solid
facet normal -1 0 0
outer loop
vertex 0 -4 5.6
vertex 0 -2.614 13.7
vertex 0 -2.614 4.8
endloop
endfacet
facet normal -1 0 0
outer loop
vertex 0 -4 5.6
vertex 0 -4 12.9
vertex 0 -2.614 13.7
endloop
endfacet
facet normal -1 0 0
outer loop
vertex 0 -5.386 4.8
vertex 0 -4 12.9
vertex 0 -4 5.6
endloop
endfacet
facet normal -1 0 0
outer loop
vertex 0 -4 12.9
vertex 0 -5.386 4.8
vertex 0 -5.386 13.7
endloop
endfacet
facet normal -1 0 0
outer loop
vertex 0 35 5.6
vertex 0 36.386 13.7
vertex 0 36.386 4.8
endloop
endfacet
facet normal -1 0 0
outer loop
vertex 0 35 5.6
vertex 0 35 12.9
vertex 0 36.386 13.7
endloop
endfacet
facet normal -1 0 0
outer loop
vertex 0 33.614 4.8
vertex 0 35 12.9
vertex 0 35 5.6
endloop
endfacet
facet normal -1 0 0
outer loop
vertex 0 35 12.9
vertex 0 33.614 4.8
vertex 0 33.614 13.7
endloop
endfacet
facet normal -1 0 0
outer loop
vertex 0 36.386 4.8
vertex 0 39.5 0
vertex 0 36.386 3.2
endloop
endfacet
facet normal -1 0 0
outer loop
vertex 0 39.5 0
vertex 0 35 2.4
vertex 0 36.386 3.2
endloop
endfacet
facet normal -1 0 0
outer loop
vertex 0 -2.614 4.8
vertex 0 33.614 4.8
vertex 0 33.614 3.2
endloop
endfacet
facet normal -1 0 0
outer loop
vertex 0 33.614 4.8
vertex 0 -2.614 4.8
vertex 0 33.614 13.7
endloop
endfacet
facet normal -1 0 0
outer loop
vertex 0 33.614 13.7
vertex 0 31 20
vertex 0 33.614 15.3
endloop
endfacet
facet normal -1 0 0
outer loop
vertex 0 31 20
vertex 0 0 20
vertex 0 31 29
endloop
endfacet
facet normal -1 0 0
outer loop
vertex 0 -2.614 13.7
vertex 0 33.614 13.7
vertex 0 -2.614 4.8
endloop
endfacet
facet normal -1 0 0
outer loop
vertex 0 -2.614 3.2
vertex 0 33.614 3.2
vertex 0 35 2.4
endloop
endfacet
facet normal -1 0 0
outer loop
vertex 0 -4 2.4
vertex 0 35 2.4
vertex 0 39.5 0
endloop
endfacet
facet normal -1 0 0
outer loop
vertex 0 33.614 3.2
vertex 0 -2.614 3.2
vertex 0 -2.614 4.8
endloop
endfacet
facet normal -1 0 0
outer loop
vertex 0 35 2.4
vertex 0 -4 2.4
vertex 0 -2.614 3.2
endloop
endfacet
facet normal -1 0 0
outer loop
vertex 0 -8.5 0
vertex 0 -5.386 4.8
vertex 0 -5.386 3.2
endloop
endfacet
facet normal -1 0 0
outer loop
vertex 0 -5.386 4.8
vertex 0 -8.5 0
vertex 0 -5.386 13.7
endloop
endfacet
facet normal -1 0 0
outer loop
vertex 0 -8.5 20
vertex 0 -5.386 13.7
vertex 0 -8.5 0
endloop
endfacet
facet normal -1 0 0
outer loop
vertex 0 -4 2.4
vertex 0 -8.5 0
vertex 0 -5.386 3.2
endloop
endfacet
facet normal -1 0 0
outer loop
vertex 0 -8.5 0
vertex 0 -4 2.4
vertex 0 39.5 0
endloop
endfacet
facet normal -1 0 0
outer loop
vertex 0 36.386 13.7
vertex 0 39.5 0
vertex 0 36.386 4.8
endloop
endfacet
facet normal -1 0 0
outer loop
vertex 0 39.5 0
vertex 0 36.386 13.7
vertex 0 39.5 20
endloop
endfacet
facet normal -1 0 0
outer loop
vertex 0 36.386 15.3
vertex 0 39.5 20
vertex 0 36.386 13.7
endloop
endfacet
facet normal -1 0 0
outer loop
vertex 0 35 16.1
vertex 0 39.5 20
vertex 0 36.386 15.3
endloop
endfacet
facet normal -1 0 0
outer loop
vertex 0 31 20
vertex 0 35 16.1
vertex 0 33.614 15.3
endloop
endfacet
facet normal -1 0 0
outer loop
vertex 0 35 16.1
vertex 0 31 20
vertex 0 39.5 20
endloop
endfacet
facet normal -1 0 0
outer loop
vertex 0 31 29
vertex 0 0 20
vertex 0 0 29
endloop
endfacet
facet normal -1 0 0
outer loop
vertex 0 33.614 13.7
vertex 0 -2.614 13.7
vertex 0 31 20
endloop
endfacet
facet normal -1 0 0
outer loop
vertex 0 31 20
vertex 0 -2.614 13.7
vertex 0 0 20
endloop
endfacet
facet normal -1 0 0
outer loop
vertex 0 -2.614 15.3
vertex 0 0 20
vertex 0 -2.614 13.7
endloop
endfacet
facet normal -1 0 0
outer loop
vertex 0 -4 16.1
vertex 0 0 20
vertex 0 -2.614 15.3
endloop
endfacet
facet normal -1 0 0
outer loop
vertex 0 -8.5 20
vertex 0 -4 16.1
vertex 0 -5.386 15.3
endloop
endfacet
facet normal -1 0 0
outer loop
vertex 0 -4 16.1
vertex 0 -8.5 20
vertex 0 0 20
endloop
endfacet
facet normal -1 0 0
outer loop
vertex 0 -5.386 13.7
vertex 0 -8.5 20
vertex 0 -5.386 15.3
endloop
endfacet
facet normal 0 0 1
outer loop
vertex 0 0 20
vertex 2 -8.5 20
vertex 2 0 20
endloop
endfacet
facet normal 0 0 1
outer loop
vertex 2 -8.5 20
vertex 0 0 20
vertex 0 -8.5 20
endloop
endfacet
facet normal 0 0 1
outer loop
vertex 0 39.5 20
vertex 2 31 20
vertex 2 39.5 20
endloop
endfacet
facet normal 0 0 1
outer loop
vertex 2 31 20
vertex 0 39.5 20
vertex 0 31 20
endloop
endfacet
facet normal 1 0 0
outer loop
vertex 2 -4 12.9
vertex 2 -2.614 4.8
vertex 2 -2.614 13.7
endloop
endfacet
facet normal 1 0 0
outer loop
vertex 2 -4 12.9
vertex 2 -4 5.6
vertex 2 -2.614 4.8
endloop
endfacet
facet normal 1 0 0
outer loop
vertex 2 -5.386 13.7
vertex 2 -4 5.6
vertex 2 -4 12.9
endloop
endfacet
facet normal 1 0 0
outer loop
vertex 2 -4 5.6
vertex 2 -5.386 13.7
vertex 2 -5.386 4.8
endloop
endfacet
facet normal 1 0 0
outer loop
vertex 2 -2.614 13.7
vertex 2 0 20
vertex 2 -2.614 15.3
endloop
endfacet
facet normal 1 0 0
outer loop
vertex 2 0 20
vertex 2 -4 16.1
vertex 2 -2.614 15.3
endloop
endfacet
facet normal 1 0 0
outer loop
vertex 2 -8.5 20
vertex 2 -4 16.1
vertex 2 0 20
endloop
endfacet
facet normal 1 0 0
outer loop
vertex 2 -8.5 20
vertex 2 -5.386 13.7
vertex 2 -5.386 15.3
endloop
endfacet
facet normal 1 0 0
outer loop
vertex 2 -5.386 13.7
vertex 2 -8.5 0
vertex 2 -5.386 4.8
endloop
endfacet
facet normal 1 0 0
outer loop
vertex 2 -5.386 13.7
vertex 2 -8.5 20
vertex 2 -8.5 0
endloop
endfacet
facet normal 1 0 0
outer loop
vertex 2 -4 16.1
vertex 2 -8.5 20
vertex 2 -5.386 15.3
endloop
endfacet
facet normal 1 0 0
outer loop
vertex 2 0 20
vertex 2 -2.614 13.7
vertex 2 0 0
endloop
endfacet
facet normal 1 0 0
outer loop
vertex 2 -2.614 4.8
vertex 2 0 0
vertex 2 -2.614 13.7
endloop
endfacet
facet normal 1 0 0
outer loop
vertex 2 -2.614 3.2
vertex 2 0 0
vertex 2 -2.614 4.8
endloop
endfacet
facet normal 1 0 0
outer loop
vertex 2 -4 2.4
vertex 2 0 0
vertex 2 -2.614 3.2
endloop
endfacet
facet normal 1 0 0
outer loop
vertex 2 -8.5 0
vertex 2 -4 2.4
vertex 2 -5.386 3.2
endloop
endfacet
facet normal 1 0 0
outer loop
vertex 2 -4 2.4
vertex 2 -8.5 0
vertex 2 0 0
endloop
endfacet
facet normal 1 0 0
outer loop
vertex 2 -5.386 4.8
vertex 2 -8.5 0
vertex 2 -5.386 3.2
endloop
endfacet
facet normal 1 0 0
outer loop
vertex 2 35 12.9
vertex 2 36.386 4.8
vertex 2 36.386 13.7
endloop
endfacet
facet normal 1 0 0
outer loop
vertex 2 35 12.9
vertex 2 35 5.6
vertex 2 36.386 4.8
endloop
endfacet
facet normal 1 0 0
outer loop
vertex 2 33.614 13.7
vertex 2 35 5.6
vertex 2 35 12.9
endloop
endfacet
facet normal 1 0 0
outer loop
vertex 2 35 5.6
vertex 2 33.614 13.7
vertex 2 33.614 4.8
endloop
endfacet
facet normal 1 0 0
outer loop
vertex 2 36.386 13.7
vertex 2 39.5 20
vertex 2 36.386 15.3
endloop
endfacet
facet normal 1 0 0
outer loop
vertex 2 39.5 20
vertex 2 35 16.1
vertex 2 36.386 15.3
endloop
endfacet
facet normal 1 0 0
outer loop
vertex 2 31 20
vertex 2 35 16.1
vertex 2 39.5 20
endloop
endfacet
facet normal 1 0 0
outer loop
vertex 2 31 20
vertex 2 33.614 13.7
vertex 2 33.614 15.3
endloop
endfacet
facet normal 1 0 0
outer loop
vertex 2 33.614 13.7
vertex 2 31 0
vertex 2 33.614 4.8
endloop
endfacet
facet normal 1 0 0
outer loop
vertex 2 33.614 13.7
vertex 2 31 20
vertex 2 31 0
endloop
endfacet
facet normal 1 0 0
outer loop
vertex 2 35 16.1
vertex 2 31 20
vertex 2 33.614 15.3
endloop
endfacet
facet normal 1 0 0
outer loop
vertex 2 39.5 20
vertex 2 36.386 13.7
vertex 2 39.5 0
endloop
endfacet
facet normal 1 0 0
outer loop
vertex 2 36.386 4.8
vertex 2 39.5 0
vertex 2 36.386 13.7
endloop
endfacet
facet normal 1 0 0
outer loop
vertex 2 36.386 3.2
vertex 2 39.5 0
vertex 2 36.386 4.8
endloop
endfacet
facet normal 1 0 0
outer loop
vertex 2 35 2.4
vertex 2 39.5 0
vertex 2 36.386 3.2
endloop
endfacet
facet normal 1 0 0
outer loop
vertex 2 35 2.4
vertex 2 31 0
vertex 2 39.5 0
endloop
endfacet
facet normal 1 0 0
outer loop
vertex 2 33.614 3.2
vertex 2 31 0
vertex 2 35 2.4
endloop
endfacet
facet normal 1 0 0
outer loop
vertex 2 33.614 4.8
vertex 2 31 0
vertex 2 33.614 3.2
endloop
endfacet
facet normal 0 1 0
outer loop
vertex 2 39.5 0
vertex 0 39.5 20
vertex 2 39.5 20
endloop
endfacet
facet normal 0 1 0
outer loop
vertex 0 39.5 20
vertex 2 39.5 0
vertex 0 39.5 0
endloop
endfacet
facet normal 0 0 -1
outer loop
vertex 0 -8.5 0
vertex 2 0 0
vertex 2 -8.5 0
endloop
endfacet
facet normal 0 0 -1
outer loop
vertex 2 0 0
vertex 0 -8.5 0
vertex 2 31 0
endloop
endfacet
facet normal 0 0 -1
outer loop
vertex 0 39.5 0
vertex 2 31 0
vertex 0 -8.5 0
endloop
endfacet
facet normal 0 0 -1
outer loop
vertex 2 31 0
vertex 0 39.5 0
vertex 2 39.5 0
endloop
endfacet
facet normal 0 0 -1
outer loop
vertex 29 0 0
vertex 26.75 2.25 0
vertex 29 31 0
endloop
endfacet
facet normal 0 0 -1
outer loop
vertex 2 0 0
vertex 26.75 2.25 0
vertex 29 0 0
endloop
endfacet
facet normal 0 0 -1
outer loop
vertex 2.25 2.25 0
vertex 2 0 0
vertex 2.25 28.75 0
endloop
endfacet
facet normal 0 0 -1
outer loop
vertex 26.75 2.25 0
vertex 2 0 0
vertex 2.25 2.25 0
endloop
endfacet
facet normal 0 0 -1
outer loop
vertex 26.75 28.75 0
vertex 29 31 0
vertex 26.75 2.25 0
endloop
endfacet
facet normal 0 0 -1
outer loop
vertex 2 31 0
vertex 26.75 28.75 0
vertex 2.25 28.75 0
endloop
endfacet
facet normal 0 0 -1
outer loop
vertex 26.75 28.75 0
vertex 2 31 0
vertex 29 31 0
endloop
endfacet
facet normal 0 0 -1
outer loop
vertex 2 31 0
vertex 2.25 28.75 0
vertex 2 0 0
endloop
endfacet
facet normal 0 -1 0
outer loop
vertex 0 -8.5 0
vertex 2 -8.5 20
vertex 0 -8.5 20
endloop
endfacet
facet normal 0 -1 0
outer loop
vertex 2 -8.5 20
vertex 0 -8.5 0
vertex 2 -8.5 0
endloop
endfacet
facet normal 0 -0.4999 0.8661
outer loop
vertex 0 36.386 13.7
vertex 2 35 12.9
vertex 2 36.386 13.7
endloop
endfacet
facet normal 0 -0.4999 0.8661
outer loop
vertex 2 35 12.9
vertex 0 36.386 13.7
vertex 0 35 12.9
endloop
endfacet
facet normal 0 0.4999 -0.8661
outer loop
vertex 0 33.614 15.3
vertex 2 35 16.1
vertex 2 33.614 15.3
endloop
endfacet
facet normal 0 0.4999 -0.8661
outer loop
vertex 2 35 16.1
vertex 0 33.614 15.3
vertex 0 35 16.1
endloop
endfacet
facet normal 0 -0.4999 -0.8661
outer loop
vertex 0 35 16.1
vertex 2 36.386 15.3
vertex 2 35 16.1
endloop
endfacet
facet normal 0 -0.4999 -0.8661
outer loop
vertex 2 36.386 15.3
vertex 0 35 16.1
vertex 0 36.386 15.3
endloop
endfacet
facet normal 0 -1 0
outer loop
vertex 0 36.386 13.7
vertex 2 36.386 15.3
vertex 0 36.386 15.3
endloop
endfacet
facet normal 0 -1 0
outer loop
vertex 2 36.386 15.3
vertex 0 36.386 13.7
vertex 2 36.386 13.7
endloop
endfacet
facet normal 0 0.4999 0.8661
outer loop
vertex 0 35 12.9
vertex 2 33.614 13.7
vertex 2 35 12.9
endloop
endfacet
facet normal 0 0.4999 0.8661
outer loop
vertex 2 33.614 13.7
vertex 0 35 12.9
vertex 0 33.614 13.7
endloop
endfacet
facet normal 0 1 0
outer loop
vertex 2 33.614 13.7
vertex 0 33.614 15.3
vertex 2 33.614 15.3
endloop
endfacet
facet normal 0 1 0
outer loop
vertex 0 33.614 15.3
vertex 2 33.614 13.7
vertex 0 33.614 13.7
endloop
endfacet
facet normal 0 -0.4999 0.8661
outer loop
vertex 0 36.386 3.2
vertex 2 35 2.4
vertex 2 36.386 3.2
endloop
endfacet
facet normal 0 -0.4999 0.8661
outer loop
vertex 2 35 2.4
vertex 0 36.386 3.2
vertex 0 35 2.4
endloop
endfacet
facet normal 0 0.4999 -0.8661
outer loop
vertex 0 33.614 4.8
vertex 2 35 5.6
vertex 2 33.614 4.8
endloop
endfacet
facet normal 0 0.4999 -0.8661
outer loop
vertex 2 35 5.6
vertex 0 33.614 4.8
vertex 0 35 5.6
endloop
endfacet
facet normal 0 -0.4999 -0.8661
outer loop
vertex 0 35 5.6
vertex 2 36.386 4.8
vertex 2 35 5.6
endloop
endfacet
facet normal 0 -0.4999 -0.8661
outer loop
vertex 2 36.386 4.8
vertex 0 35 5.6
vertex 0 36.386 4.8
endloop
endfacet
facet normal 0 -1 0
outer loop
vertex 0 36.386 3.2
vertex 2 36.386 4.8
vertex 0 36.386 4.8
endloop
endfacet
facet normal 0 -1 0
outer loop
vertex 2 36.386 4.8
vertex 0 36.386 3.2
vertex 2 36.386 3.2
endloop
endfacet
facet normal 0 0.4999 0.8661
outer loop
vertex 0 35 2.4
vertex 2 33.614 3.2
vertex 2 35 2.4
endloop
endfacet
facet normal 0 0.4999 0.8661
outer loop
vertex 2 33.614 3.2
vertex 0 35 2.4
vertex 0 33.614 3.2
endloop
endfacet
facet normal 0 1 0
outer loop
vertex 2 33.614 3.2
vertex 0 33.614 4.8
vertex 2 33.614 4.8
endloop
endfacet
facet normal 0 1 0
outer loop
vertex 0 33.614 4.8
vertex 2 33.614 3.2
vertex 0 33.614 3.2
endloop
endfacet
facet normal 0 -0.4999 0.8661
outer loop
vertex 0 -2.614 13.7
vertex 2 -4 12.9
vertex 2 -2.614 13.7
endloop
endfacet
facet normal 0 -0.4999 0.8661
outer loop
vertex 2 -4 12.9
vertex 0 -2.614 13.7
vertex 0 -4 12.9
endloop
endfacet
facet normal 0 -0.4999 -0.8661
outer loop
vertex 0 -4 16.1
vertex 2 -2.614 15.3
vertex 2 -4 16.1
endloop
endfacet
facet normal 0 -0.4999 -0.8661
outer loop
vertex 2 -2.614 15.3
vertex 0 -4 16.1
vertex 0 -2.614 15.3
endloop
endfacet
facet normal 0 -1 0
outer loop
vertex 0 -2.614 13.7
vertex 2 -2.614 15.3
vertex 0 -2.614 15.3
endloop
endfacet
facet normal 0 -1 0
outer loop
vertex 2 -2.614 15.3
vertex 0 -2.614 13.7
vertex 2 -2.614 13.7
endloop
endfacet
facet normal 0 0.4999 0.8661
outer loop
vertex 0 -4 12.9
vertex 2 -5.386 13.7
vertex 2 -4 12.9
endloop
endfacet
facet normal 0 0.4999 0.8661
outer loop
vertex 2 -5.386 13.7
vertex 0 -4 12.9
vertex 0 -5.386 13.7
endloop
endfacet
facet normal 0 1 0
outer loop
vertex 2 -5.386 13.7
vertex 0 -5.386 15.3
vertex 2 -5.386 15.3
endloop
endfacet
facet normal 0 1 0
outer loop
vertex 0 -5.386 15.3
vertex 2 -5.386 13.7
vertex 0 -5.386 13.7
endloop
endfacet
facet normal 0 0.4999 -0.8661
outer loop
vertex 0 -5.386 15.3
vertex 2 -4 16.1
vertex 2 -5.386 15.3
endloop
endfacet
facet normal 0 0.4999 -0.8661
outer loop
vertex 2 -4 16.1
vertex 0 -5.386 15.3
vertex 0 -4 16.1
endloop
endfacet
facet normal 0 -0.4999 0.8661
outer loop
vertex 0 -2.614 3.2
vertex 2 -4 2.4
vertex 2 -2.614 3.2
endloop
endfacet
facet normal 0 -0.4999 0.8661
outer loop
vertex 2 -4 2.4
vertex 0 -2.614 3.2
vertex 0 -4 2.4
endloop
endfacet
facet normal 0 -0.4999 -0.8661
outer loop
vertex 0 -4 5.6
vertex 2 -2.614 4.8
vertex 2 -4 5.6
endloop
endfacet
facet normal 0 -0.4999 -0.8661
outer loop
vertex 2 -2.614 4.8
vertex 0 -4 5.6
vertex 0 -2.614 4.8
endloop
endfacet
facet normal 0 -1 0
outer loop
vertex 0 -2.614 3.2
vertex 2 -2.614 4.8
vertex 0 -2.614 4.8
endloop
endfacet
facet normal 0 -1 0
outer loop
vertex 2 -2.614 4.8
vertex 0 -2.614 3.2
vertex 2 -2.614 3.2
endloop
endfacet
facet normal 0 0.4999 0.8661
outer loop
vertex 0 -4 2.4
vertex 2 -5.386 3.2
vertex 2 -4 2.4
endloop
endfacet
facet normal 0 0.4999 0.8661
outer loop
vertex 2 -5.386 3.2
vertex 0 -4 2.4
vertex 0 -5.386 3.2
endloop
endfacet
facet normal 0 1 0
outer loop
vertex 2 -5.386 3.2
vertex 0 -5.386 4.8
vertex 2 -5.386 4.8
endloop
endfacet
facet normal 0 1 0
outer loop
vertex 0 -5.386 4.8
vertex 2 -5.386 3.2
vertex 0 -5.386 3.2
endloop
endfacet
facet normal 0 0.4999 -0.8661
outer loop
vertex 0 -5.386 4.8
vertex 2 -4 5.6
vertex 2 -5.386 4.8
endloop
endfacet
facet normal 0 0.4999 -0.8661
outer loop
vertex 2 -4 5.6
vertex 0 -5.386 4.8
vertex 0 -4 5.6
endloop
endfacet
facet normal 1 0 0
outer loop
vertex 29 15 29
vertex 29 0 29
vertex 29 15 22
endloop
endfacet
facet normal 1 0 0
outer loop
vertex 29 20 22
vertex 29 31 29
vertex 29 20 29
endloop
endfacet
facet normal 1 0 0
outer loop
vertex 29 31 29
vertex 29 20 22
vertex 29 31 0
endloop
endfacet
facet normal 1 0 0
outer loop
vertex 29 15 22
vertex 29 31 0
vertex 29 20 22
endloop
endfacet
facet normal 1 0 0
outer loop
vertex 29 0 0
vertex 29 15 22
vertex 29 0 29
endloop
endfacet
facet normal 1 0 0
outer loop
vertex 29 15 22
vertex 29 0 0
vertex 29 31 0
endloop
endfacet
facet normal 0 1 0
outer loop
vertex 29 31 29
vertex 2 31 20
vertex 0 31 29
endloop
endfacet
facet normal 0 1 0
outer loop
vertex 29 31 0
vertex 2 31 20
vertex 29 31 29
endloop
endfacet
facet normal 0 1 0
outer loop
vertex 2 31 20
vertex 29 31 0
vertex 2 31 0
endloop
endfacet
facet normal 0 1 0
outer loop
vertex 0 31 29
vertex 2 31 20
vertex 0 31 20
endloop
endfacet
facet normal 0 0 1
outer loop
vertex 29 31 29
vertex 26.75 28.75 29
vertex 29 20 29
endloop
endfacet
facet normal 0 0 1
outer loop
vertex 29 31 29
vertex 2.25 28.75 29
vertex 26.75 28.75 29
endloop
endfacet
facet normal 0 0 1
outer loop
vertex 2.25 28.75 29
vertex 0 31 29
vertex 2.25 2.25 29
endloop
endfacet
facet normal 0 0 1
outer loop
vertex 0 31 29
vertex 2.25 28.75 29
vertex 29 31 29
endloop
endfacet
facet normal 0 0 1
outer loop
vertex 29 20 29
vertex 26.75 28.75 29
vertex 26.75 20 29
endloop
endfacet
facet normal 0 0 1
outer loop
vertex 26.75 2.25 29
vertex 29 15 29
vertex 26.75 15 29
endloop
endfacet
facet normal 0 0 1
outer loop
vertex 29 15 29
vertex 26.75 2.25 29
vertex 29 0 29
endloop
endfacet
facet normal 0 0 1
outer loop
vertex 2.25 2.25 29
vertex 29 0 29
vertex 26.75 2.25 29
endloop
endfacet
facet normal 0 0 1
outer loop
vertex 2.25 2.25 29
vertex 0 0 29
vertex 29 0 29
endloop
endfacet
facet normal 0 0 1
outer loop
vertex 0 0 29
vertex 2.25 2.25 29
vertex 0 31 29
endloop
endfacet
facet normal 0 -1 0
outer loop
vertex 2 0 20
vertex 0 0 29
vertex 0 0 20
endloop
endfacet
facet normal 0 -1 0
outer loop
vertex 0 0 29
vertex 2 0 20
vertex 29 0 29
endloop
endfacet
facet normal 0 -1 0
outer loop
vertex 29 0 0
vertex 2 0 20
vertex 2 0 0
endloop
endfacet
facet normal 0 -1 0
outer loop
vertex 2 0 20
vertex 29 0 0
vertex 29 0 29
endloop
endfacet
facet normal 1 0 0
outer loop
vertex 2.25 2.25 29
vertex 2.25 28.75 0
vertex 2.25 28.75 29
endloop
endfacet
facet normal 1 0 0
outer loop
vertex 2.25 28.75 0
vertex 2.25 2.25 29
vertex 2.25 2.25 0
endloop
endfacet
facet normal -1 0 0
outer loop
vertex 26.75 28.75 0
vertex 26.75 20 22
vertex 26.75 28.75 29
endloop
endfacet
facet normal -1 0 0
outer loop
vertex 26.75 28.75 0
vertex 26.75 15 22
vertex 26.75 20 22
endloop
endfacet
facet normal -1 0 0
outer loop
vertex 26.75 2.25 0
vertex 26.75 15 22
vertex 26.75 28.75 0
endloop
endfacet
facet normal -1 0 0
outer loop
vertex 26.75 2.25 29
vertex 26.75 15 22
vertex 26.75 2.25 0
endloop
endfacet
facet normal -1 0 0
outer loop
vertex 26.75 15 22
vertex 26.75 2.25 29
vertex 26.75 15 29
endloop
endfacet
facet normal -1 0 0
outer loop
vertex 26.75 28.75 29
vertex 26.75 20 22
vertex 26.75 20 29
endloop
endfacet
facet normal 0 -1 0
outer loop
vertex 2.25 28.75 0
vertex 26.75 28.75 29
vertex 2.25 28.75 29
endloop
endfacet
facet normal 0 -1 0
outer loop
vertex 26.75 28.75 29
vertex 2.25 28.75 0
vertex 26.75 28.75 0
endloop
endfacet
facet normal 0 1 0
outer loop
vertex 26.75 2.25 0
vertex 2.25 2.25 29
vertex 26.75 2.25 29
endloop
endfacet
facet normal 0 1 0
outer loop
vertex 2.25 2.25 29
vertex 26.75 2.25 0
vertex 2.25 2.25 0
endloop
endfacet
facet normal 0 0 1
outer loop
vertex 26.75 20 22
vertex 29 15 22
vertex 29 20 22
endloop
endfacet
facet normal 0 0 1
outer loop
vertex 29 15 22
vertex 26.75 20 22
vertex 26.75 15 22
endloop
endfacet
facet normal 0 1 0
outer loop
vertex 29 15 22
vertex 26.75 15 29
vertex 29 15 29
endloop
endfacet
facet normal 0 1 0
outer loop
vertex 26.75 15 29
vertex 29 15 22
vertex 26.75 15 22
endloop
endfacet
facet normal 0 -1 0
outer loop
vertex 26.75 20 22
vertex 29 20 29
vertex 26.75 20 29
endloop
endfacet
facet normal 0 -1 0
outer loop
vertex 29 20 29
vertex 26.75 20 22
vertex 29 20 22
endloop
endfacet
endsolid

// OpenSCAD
difference(){
linear_extrude(height = 29, center = false, convexity = 10, twist = 0)
 polygon( points=[
[0,0],
[0,31],
[29,31],
[29,0]
]);
linear_extrude(height = 29, center = false, convexity = 10, twist = 0)
 polygon( points=[
[2.25,2.25],
[2.25,28.75],
[26.75,28.75],
[26.75,2.25]
]);
    translate ([26.5,15,22])cube ([3,5,20]); 
};
difference(){
translate ([0,-8.5,0])cube ([2,48,20]); 
rotate([0,90,0])translate ([-14.5,35,0])cylinder (r1 = 1.6, r2 = 1.6, h= 3);
rotate([0,90,0])translate ([-4   ,35,0])cylinder (r1 = 1.6, r2 = 1.6, h= 3);
rotate([0,90,0])translate ([-14.5,-4,0])cylinder (r1 = 1.6, r2 = 1.6, h= 3);
rotate([0,90,0])translate ([-4   ,-4,0])cylinder (r1 = 1.6, r2 = 1.6, h= 3);
};
